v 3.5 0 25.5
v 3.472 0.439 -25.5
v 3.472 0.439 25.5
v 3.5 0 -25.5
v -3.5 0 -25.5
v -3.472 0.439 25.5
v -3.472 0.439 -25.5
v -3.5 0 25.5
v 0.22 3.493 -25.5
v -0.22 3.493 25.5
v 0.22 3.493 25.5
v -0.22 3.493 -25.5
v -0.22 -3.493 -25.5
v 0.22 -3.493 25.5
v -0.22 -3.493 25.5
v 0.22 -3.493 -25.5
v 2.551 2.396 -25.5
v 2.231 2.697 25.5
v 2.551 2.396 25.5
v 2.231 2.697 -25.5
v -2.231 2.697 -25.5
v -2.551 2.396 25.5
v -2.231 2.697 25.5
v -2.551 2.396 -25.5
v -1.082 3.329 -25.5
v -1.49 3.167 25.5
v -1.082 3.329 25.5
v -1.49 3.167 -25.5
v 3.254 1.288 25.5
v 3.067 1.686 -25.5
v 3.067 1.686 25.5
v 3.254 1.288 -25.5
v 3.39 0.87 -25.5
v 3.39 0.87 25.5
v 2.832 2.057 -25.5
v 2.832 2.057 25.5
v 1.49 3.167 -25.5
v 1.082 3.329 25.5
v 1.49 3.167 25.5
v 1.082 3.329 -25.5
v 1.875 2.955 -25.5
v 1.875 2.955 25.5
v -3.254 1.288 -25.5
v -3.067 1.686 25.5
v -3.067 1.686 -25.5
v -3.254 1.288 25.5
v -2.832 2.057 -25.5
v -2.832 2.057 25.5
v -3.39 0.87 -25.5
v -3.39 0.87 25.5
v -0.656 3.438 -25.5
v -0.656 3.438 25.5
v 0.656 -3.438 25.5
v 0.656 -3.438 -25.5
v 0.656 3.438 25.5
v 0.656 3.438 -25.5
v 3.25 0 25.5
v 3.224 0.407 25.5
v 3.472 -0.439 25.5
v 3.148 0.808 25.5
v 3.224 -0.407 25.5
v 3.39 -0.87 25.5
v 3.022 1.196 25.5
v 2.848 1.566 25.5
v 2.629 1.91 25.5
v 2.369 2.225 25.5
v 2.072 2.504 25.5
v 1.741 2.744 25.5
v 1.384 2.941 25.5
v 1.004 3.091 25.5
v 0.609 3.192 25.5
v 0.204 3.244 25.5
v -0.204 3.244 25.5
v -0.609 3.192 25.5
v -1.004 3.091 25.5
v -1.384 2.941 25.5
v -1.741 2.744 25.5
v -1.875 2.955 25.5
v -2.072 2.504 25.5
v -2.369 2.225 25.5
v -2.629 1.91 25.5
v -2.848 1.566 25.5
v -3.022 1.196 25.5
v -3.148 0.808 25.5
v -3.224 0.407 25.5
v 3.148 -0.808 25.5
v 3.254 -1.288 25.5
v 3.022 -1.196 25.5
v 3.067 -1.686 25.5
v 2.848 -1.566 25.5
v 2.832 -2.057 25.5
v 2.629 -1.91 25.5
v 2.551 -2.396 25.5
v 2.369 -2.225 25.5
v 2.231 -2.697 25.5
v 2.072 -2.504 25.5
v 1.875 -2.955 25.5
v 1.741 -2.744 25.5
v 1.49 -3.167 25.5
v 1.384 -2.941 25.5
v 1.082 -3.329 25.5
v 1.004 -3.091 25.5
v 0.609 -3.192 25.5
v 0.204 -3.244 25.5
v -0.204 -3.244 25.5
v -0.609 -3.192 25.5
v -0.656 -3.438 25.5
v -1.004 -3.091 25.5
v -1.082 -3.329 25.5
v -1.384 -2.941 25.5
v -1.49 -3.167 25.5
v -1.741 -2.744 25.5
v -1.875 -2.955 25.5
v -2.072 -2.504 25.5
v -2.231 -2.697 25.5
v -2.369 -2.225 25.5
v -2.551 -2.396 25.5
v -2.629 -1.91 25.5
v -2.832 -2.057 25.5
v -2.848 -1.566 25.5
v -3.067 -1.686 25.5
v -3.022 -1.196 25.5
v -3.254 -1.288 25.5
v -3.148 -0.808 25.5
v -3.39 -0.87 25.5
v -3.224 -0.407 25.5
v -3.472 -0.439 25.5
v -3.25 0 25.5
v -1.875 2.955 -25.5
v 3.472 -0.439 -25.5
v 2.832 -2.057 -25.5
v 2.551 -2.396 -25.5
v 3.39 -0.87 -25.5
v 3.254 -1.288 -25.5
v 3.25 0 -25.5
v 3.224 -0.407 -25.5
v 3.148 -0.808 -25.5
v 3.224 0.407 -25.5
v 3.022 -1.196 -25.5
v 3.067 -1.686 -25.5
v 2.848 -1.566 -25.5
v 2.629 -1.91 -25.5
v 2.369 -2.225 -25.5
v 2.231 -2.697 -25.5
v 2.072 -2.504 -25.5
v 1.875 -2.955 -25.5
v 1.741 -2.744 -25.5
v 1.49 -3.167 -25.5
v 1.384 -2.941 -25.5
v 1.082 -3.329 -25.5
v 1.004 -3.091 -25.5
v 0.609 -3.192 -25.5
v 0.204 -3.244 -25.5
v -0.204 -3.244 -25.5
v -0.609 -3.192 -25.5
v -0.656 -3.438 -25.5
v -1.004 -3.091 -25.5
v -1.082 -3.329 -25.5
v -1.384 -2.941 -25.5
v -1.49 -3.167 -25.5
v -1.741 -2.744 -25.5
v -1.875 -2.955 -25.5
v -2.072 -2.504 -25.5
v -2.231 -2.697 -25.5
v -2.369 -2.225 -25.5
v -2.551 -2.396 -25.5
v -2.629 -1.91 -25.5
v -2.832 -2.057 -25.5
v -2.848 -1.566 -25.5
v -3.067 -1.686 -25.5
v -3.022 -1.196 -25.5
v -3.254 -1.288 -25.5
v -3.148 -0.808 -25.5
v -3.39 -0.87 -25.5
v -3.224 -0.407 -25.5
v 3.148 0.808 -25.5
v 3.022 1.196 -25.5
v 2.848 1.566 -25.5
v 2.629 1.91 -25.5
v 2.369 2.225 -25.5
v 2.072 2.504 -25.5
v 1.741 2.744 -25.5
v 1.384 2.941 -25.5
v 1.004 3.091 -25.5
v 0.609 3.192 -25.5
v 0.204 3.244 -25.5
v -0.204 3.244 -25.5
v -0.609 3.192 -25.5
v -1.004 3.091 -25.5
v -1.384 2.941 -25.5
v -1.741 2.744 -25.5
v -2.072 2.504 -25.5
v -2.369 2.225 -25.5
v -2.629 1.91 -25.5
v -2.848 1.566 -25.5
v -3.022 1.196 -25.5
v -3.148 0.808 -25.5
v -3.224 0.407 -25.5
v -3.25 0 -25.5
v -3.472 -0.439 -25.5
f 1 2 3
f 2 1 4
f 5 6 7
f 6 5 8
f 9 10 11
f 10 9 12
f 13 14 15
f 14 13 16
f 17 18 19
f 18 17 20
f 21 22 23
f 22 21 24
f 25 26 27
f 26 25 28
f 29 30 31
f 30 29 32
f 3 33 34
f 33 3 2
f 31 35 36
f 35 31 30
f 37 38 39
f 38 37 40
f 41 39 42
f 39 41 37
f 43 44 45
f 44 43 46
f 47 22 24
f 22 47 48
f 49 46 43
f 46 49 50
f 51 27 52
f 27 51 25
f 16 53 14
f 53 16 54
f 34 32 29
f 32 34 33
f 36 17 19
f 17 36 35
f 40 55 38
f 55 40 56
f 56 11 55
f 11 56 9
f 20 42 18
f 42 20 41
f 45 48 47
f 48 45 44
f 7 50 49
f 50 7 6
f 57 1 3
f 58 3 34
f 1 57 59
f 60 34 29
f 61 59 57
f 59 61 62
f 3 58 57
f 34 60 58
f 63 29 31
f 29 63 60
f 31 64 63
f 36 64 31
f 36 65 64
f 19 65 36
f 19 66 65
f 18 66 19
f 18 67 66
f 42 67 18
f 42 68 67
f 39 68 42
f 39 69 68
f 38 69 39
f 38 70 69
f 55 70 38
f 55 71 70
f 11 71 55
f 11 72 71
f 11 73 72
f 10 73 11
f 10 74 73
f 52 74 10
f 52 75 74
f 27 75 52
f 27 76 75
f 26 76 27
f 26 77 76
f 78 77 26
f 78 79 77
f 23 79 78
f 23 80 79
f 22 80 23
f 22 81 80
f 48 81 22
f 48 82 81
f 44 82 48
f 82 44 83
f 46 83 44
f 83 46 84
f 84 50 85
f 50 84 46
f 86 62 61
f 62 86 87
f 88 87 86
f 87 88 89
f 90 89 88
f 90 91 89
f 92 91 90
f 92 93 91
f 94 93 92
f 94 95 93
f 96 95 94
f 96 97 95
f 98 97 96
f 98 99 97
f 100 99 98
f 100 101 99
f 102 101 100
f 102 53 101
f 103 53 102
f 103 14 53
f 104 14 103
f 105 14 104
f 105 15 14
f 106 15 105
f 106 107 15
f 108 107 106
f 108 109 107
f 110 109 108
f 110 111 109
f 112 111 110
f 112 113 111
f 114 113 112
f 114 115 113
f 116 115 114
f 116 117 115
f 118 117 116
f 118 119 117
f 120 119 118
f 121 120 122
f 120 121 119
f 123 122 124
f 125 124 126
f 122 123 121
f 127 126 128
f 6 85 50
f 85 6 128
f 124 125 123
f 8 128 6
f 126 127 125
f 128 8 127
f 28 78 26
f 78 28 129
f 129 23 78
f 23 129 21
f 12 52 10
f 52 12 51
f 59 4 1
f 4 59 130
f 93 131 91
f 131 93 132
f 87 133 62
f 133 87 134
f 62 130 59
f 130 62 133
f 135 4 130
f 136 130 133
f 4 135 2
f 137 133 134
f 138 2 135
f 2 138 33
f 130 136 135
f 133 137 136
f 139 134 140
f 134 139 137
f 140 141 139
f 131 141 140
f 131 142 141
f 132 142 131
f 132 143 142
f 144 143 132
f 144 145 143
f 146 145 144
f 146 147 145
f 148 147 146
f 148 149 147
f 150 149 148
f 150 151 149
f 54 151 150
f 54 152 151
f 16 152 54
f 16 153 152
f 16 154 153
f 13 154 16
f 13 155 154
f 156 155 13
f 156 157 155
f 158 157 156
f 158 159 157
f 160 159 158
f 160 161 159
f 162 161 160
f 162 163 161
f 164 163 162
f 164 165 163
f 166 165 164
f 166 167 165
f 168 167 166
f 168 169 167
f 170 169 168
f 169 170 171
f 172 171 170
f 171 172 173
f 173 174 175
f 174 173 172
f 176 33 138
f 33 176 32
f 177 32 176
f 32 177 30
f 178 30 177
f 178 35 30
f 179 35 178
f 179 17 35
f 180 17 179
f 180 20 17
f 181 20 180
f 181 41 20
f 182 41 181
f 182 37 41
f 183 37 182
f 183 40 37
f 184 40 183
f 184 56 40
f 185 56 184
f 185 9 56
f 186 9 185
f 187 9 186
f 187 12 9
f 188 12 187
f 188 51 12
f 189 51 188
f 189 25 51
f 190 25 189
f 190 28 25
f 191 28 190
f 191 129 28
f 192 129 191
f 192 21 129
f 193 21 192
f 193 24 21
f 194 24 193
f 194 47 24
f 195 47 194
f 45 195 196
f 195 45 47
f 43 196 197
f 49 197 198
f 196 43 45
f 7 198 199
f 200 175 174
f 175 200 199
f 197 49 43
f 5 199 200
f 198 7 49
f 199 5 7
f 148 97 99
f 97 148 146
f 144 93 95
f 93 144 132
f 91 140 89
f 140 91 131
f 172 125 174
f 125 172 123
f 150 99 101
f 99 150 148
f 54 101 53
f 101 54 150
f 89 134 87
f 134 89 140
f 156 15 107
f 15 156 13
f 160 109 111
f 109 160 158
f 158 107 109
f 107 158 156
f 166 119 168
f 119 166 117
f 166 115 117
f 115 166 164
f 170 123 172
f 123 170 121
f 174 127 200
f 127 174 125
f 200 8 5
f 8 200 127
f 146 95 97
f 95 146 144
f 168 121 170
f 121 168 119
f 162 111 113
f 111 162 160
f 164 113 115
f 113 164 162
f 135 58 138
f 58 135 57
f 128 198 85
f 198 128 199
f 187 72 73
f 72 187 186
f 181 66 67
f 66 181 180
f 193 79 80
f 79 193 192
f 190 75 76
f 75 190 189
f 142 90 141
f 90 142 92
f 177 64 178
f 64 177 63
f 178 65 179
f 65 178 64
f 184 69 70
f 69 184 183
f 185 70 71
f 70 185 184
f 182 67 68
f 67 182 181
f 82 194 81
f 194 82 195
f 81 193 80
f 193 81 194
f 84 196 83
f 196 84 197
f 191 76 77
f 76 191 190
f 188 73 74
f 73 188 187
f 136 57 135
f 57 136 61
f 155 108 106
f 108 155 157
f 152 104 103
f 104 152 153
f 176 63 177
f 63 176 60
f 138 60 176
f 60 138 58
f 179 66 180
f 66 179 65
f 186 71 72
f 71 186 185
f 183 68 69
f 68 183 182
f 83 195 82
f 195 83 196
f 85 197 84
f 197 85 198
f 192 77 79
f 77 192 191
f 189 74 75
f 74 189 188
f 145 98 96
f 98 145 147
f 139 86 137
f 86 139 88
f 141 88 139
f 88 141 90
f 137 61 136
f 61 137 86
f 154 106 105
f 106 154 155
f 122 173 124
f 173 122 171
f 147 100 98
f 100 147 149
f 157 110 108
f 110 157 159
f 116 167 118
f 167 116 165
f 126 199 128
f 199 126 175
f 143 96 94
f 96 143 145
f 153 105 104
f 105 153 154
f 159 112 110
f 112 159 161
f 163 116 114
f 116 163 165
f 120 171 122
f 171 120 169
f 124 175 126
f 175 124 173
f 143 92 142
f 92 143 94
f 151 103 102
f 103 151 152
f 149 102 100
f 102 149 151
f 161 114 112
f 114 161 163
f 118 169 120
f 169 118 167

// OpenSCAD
$fn = 50;


difference() {
	union() {
		translate(v = [0, 0, -25.5000000000]) {
			cylinder(h = 51, r = 3.5000000000);
		}
	}
	union() {
		translate(v = [0, 0, -100.0000000000]) {
			cylinder(h = 200, r = 3.2500000000);
		}
	}
}
